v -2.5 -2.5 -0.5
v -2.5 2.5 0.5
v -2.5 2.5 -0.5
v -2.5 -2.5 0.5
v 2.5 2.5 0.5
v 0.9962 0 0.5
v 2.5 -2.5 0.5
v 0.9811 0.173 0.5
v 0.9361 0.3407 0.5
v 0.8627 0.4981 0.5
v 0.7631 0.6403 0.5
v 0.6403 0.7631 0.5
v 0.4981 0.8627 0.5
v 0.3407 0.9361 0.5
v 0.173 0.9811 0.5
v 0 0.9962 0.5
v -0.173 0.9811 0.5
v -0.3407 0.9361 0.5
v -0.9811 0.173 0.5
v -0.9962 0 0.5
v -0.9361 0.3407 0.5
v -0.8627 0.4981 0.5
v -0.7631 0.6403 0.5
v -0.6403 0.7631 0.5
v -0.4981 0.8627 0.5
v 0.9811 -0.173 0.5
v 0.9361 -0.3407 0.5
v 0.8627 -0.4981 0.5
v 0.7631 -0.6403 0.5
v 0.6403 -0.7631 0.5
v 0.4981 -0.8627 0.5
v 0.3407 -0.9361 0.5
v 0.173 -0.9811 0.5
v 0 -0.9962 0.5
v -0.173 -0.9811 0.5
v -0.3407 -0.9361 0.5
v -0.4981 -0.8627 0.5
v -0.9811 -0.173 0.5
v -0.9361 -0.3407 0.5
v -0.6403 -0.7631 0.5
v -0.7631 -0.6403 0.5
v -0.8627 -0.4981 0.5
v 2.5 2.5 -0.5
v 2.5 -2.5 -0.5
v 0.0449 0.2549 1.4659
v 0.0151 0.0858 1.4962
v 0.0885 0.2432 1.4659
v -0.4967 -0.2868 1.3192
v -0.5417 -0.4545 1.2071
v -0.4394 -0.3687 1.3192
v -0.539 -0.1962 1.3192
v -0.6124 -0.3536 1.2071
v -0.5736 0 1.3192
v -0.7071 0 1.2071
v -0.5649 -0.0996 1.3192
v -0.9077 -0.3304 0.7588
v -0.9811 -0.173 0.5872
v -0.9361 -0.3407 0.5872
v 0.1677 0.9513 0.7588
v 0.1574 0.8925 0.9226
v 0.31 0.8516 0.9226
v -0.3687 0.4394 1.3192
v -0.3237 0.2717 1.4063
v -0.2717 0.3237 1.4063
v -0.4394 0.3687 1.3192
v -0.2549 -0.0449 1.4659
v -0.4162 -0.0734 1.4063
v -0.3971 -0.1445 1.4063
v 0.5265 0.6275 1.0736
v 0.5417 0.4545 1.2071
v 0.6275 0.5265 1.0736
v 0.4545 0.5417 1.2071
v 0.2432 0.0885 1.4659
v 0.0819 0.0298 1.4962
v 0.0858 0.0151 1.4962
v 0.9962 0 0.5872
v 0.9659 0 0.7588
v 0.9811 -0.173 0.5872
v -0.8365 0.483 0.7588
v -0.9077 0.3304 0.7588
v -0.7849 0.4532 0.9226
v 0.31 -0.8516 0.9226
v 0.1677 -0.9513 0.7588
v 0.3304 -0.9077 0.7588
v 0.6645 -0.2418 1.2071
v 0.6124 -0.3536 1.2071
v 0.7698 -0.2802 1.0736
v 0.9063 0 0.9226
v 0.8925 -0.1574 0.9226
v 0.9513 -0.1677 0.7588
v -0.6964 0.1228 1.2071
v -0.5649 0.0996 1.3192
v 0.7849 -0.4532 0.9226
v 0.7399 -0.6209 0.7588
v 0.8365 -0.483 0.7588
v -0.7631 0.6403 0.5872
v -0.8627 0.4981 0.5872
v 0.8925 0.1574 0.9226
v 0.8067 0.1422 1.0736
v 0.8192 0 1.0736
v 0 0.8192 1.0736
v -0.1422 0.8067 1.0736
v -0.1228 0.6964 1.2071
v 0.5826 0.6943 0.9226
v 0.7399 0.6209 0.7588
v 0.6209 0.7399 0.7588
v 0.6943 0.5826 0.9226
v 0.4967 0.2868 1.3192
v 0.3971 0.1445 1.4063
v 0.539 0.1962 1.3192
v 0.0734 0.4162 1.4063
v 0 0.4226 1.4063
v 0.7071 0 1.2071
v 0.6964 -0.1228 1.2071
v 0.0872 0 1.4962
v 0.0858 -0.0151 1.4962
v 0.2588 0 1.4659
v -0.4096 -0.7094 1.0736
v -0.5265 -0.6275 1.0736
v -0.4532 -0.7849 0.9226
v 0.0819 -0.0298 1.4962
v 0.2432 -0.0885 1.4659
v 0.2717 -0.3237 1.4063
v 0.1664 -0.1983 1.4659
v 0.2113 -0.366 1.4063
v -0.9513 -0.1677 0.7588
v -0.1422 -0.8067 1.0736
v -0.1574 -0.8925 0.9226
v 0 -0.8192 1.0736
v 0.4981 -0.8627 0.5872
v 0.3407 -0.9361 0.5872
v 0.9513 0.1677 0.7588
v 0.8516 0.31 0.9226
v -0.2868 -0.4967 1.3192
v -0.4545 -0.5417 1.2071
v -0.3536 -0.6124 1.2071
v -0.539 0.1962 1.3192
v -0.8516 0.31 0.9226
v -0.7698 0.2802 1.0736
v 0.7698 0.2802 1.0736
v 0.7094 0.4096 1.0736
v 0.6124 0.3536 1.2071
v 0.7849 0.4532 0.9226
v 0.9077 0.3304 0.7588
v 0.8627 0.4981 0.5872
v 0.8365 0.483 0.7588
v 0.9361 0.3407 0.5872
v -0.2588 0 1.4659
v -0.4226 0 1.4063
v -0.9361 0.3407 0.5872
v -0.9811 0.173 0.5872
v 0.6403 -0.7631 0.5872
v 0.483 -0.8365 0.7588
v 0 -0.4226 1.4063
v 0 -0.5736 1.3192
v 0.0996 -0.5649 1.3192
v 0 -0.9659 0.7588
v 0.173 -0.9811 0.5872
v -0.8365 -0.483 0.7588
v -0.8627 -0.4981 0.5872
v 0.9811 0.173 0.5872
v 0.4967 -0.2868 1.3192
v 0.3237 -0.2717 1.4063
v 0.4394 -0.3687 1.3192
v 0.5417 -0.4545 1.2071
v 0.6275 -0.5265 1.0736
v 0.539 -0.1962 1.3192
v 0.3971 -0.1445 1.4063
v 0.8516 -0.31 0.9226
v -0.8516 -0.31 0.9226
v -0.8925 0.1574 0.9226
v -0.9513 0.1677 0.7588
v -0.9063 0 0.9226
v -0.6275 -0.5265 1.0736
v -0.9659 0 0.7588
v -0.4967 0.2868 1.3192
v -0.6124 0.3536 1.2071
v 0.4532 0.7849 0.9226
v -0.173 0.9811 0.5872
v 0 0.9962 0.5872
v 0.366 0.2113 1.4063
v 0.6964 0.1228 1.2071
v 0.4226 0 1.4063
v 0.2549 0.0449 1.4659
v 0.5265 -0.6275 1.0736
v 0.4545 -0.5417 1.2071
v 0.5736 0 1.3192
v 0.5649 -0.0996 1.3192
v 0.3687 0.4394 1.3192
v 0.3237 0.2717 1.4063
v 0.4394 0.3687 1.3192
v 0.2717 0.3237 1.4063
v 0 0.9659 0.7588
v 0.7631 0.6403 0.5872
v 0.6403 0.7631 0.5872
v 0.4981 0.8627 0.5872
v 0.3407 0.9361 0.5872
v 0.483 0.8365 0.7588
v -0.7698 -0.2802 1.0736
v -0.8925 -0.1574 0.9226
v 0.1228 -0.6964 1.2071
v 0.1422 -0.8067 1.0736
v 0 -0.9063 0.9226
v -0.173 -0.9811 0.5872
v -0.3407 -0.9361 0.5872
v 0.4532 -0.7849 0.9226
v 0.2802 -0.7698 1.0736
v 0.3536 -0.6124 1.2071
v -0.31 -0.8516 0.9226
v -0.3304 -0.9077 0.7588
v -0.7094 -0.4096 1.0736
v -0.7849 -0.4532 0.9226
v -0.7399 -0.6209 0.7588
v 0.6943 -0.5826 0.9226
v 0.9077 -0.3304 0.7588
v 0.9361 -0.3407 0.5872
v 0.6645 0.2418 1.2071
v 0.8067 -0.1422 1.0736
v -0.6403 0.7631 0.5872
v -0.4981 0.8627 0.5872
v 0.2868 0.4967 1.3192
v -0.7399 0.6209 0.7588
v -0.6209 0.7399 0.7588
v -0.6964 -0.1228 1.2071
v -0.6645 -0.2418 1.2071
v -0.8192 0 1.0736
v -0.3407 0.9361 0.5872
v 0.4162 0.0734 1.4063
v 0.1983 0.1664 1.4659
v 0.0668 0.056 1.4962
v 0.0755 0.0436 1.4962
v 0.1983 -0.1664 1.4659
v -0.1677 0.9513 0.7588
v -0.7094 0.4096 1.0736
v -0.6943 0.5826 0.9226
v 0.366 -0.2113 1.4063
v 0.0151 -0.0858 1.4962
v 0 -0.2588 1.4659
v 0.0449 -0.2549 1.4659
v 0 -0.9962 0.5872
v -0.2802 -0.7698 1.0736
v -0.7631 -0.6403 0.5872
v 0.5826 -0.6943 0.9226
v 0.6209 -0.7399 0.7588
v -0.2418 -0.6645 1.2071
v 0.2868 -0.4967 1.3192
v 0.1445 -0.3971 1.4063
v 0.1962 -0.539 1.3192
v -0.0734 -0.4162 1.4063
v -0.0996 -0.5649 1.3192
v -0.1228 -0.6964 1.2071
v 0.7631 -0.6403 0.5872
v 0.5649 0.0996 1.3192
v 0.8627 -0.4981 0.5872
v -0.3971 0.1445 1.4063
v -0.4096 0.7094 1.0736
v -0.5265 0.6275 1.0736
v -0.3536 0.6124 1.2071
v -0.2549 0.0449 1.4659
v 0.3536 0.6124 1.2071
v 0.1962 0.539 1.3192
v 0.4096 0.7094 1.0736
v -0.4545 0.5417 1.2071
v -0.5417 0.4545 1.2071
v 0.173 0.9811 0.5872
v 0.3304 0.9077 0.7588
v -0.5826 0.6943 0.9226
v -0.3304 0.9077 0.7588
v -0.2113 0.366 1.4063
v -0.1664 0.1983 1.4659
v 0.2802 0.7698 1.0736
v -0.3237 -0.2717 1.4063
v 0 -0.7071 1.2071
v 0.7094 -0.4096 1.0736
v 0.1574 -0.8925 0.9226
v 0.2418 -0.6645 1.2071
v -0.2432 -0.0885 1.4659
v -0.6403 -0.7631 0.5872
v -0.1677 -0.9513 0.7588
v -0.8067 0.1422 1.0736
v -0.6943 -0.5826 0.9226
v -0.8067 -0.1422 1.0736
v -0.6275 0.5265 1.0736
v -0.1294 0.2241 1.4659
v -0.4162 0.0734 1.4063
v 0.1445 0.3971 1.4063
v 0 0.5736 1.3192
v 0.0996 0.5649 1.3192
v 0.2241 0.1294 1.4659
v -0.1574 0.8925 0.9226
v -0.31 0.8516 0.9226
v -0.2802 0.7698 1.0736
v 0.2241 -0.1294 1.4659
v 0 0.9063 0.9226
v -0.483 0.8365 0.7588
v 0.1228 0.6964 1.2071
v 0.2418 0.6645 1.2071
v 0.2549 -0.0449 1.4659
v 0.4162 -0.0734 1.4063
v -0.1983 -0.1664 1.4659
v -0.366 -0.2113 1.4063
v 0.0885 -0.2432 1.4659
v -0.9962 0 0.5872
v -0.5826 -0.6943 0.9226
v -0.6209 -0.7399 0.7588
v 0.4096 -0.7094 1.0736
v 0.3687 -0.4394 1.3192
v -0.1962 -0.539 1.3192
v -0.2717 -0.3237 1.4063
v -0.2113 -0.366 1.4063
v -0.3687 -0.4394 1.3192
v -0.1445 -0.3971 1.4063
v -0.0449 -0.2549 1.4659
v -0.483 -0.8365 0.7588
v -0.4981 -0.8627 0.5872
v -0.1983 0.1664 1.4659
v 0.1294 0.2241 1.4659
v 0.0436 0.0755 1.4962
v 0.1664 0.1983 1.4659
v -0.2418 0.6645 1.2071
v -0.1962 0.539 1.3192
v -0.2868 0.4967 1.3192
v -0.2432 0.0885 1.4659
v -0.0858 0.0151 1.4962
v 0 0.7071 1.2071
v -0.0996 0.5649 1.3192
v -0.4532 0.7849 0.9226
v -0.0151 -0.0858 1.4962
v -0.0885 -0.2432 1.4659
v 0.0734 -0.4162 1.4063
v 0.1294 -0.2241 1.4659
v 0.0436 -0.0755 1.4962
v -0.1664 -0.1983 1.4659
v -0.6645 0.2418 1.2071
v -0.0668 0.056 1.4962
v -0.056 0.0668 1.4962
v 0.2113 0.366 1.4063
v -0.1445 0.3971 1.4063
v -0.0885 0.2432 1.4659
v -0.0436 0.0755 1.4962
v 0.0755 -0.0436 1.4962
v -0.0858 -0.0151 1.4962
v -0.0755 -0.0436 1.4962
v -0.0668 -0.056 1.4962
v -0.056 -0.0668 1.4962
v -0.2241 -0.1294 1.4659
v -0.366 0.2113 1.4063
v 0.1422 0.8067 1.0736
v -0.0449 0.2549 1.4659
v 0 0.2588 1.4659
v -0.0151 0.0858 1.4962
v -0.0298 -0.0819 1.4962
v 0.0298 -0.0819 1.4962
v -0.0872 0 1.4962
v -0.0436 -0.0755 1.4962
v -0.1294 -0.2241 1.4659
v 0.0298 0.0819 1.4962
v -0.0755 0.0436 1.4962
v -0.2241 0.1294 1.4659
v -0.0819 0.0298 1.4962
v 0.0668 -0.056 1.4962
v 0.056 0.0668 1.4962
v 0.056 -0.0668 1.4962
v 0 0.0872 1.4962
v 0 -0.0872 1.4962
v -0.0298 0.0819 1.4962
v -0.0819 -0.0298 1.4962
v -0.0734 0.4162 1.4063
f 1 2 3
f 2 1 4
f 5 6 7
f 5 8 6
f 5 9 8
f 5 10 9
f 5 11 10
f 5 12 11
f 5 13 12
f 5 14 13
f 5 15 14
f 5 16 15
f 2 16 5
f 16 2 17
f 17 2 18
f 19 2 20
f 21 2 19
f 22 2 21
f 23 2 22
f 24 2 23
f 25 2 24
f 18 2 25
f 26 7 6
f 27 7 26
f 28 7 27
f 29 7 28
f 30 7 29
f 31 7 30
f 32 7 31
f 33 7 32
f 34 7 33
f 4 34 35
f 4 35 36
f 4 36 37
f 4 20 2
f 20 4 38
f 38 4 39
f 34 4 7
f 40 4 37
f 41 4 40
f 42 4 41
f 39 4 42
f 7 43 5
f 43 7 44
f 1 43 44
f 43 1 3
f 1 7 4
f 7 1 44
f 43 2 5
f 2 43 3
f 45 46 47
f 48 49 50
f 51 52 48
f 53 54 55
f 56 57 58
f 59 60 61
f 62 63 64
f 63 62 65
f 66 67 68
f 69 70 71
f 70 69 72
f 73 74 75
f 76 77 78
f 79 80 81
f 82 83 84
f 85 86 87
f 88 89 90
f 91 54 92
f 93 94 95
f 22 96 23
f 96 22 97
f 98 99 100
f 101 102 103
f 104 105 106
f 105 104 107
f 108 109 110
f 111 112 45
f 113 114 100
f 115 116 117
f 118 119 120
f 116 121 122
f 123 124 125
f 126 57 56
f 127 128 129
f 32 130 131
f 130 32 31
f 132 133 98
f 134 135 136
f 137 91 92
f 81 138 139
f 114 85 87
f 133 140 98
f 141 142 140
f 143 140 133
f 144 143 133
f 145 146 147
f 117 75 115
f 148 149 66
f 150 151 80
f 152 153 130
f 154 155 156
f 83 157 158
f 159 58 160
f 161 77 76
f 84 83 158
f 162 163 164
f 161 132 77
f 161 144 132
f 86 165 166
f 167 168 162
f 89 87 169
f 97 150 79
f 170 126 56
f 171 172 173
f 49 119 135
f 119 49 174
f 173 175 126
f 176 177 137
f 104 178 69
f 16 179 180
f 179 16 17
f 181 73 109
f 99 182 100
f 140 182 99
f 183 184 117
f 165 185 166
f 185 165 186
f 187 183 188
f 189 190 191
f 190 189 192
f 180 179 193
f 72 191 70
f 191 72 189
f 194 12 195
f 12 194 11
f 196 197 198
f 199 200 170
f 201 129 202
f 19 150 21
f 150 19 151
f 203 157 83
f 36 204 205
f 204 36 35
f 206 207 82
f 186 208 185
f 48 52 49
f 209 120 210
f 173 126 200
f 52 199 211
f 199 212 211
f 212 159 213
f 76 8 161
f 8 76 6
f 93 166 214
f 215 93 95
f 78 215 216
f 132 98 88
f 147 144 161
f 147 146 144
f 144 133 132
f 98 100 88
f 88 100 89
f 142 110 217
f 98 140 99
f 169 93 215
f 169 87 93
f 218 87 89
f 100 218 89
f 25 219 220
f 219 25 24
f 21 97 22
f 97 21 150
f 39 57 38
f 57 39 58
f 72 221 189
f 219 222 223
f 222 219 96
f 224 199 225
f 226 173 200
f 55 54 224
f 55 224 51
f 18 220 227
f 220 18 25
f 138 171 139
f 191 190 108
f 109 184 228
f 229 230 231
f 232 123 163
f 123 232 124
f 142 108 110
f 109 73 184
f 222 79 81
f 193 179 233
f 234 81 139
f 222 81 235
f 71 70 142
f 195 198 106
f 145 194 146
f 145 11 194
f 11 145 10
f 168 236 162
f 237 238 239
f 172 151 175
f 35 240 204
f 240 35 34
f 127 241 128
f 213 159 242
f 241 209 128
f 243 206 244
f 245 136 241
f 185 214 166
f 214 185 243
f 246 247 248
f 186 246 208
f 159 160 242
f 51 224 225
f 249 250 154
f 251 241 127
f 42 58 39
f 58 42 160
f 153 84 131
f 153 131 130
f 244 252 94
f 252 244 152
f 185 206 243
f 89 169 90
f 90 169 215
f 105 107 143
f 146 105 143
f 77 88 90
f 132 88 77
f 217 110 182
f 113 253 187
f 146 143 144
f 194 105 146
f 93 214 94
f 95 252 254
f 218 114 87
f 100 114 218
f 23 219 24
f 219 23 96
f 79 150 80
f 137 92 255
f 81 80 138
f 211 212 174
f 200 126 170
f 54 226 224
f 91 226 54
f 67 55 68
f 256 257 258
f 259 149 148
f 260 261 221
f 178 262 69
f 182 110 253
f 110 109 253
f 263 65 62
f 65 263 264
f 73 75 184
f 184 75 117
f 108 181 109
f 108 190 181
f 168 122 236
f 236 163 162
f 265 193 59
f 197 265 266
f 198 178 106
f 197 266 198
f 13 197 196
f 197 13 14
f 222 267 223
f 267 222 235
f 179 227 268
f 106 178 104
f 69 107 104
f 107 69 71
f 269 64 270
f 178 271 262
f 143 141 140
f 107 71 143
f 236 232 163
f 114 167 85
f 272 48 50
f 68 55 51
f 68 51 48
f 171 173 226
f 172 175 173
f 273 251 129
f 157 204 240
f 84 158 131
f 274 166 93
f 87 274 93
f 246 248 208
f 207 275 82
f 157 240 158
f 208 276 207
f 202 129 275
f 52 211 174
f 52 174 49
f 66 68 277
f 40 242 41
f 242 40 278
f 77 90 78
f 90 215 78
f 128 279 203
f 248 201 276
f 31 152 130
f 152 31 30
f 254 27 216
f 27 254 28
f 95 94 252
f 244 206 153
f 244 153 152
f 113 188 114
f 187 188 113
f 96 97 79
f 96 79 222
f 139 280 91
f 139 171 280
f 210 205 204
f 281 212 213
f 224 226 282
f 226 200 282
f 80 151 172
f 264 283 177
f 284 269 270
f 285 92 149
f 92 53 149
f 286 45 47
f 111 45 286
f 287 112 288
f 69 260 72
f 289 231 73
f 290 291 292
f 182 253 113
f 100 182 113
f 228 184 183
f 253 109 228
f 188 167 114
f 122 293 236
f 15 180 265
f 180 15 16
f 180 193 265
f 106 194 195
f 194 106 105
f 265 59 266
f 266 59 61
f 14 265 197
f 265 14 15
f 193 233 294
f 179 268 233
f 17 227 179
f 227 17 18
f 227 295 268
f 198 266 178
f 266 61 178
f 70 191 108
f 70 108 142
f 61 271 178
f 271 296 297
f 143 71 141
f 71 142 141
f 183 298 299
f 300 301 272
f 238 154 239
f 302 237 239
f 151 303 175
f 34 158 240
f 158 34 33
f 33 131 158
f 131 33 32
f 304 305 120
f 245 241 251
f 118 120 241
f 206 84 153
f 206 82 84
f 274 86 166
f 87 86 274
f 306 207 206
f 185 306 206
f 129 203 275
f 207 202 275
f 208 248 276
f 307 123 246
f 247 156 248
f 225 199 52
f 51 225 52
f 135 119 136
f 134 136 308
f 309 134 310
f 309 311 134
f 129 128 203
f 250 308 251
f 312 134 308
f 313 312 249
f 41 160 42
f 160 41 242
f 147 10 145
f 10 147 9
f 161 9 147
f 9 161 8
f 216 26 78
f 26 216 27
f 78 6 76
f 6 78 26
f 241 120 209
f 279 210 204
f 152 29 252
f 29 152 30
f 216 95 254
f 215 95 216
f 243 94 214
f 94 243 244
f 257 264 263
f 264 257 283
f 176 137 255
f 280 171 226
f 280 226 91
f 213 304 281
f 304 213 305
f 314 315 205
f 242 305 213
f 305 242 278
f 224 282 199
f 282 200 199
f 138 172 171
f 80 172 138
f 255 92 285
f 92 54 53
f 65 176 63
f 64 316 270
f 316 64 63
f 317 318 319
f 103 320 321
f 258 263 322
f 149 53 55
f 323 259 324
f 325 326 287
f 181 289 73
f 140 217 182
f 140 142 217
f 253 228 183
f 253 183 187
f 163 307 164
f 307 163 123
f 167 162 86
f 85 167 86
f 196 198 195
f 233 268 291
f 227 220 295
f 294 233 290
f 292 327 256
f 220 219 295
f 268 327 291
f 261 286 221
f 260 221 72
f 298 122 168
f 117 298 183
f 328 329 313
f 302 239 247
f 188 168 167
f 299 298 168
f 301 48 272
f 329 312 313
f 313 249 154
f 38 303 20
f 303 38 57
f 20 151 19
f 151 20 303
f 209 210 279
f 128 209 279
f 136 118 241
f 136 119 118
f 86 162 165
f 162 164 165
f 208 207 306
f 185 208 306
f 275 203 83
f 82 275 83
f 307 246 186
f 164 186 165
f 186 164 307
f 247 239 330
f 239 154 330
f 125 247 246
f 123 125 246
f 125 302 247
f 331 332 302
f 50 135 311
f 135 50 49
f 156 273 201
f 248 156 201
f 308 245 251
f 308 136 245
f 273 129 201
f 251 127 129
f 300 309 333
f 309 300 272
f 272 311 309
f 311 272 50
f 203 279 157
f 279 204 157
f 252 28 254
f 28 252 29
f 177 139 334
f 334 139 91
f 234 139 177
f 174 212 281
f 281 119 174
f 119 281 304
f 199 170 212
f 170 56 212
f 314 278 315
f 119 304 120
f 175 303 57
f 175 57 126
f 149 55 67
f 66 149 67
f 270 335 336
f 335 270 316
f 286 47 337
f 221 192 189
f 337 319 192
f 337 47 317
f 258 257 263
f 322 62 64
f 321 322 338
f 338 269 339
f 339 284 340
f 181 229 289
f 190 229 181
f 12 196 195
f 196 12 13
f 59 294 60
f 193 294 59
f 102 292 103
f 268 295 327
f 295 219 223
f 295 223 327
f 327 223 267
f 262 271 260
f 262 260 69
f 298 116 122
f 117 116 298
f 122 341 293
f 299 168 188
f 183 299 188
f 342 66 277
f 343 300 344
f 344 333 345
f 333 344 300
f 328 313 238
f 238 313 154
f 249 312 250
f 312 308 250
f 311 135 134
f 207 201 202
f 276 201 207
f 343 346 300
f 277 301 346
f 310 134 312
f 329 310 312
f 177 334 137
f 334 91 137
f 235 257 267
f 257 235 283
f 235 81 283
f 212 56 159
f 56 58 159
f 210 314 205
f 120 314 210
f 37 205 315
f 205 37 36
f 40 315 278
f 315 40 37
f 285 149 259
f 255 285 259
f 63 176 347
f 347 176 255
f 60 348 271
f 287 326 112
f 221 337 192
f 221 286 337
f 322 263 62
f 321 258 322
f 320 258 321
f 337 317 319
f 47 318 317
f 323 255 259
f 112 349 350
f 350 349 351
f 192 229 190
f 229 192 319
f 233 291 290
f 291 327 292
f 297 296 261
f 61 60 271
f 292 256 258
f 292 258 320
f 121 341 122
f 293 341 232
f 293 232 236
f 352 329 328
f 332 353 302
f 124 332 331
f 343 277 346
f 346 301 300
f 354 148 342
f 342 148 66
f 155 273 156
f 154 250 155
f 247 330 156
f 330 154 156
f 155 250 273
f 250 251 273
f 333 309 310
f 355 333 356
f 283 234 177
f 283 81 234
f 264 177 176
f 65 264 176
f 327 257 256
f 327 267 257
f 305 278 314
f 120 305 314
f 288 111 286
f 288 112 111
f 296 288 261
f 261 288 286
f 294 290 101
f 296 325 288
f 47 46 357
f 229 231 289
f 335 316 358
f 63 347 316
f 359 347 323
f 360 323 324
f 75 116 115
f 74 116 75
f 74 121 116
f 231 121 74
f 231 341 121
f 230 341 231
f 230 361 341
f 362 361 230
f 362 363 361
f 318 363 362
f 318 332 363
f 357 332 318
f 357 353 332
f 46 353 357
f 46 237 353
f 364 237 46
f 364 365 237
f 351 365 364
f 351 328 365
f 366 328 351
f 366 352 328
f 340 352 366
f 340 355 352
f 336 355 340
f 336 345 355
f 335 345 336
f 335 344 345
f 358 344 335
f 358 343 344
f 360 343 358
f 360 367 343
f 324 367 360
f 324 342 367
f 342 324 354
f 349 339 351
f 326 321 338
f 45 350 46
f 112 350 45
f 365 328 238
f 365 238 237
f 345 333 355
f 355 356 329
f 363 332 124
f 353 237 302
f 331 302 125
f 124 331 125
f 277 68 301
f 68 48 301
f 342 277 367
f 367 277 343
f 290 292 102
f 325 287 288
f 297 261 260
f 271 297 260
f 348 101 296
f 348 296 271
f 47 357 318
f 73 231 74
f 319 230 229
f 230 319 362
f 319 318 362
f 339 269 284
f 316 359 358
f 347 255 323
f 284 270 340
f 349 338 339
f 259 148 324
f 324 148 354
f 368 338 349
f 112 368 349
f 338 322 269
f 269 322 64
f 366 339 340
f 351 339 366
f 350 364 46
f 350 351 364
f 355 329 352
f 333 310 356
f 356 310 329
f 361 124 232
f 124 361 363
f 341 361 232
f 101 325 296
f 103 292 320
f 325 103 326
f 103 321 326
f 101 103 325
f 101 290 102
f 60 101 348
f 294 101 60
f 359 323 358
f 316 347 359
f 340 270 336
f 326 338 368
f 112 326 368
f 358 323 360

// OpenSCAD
//
//  A flat square with a hemisphere on top
//  I sometimes use this when trying to get a new filament
//  dialed in, or trying to adjust my Z offset.
//

//
//  Copyright (c) 2020 Sarah Kelley, sarah@sakelley.org
//
//  Permission is hereby granted, free of charge, to any person obtaining a copy
//  of this software and associated documentation files (the "Software"), to deal
//  in the Software without restriction, including without limitation the rights
//  to use, copy, modify, merge, publish, distribute, sublicense, and/or sell
//  copies of the Software, and to permit persons to whom the Software is
//  furnished to do so, subject to the following conditions:

//  The above copyright notice and this permission notice shall be included in all
//  copies or substantial portions of the Software.
//  
//  THE SOFTWARE IS PROVIDED "AS IS", WITHOUT WARRANTY OF ANY KIND, EXPRESS OR
//  IMPLIED, INCLUDING BUT NOT LIMITED TO THE WARRANTIES OF MERCHANTABILITY,
//  FITNESS FOR A PARTICULAR PURPOSE AND NONINFRINGEMENT. IN NO EVENT SHALL THE
//  AUTHORS OR COPYRIGHT HOLDERS BE LIABLE FOR ANY CLAIM, DAMAGES OR OTHER
//  LIABILITY, WHETHER IN AN ACTION OF CONTRACT, TORT OR OTHERWISE, ARISING FROM,
//  OUT OF OR IN CONNECTION WITH THE SOFTWARE OR THE USE OR OTHER DEALINGS IN THE
//  SOFTWARE.
//

union() {
    scale([5,5,1]) cube(center=true);

    translate([0,0,0.5]) sphere(r=1, $fn=36);
}
